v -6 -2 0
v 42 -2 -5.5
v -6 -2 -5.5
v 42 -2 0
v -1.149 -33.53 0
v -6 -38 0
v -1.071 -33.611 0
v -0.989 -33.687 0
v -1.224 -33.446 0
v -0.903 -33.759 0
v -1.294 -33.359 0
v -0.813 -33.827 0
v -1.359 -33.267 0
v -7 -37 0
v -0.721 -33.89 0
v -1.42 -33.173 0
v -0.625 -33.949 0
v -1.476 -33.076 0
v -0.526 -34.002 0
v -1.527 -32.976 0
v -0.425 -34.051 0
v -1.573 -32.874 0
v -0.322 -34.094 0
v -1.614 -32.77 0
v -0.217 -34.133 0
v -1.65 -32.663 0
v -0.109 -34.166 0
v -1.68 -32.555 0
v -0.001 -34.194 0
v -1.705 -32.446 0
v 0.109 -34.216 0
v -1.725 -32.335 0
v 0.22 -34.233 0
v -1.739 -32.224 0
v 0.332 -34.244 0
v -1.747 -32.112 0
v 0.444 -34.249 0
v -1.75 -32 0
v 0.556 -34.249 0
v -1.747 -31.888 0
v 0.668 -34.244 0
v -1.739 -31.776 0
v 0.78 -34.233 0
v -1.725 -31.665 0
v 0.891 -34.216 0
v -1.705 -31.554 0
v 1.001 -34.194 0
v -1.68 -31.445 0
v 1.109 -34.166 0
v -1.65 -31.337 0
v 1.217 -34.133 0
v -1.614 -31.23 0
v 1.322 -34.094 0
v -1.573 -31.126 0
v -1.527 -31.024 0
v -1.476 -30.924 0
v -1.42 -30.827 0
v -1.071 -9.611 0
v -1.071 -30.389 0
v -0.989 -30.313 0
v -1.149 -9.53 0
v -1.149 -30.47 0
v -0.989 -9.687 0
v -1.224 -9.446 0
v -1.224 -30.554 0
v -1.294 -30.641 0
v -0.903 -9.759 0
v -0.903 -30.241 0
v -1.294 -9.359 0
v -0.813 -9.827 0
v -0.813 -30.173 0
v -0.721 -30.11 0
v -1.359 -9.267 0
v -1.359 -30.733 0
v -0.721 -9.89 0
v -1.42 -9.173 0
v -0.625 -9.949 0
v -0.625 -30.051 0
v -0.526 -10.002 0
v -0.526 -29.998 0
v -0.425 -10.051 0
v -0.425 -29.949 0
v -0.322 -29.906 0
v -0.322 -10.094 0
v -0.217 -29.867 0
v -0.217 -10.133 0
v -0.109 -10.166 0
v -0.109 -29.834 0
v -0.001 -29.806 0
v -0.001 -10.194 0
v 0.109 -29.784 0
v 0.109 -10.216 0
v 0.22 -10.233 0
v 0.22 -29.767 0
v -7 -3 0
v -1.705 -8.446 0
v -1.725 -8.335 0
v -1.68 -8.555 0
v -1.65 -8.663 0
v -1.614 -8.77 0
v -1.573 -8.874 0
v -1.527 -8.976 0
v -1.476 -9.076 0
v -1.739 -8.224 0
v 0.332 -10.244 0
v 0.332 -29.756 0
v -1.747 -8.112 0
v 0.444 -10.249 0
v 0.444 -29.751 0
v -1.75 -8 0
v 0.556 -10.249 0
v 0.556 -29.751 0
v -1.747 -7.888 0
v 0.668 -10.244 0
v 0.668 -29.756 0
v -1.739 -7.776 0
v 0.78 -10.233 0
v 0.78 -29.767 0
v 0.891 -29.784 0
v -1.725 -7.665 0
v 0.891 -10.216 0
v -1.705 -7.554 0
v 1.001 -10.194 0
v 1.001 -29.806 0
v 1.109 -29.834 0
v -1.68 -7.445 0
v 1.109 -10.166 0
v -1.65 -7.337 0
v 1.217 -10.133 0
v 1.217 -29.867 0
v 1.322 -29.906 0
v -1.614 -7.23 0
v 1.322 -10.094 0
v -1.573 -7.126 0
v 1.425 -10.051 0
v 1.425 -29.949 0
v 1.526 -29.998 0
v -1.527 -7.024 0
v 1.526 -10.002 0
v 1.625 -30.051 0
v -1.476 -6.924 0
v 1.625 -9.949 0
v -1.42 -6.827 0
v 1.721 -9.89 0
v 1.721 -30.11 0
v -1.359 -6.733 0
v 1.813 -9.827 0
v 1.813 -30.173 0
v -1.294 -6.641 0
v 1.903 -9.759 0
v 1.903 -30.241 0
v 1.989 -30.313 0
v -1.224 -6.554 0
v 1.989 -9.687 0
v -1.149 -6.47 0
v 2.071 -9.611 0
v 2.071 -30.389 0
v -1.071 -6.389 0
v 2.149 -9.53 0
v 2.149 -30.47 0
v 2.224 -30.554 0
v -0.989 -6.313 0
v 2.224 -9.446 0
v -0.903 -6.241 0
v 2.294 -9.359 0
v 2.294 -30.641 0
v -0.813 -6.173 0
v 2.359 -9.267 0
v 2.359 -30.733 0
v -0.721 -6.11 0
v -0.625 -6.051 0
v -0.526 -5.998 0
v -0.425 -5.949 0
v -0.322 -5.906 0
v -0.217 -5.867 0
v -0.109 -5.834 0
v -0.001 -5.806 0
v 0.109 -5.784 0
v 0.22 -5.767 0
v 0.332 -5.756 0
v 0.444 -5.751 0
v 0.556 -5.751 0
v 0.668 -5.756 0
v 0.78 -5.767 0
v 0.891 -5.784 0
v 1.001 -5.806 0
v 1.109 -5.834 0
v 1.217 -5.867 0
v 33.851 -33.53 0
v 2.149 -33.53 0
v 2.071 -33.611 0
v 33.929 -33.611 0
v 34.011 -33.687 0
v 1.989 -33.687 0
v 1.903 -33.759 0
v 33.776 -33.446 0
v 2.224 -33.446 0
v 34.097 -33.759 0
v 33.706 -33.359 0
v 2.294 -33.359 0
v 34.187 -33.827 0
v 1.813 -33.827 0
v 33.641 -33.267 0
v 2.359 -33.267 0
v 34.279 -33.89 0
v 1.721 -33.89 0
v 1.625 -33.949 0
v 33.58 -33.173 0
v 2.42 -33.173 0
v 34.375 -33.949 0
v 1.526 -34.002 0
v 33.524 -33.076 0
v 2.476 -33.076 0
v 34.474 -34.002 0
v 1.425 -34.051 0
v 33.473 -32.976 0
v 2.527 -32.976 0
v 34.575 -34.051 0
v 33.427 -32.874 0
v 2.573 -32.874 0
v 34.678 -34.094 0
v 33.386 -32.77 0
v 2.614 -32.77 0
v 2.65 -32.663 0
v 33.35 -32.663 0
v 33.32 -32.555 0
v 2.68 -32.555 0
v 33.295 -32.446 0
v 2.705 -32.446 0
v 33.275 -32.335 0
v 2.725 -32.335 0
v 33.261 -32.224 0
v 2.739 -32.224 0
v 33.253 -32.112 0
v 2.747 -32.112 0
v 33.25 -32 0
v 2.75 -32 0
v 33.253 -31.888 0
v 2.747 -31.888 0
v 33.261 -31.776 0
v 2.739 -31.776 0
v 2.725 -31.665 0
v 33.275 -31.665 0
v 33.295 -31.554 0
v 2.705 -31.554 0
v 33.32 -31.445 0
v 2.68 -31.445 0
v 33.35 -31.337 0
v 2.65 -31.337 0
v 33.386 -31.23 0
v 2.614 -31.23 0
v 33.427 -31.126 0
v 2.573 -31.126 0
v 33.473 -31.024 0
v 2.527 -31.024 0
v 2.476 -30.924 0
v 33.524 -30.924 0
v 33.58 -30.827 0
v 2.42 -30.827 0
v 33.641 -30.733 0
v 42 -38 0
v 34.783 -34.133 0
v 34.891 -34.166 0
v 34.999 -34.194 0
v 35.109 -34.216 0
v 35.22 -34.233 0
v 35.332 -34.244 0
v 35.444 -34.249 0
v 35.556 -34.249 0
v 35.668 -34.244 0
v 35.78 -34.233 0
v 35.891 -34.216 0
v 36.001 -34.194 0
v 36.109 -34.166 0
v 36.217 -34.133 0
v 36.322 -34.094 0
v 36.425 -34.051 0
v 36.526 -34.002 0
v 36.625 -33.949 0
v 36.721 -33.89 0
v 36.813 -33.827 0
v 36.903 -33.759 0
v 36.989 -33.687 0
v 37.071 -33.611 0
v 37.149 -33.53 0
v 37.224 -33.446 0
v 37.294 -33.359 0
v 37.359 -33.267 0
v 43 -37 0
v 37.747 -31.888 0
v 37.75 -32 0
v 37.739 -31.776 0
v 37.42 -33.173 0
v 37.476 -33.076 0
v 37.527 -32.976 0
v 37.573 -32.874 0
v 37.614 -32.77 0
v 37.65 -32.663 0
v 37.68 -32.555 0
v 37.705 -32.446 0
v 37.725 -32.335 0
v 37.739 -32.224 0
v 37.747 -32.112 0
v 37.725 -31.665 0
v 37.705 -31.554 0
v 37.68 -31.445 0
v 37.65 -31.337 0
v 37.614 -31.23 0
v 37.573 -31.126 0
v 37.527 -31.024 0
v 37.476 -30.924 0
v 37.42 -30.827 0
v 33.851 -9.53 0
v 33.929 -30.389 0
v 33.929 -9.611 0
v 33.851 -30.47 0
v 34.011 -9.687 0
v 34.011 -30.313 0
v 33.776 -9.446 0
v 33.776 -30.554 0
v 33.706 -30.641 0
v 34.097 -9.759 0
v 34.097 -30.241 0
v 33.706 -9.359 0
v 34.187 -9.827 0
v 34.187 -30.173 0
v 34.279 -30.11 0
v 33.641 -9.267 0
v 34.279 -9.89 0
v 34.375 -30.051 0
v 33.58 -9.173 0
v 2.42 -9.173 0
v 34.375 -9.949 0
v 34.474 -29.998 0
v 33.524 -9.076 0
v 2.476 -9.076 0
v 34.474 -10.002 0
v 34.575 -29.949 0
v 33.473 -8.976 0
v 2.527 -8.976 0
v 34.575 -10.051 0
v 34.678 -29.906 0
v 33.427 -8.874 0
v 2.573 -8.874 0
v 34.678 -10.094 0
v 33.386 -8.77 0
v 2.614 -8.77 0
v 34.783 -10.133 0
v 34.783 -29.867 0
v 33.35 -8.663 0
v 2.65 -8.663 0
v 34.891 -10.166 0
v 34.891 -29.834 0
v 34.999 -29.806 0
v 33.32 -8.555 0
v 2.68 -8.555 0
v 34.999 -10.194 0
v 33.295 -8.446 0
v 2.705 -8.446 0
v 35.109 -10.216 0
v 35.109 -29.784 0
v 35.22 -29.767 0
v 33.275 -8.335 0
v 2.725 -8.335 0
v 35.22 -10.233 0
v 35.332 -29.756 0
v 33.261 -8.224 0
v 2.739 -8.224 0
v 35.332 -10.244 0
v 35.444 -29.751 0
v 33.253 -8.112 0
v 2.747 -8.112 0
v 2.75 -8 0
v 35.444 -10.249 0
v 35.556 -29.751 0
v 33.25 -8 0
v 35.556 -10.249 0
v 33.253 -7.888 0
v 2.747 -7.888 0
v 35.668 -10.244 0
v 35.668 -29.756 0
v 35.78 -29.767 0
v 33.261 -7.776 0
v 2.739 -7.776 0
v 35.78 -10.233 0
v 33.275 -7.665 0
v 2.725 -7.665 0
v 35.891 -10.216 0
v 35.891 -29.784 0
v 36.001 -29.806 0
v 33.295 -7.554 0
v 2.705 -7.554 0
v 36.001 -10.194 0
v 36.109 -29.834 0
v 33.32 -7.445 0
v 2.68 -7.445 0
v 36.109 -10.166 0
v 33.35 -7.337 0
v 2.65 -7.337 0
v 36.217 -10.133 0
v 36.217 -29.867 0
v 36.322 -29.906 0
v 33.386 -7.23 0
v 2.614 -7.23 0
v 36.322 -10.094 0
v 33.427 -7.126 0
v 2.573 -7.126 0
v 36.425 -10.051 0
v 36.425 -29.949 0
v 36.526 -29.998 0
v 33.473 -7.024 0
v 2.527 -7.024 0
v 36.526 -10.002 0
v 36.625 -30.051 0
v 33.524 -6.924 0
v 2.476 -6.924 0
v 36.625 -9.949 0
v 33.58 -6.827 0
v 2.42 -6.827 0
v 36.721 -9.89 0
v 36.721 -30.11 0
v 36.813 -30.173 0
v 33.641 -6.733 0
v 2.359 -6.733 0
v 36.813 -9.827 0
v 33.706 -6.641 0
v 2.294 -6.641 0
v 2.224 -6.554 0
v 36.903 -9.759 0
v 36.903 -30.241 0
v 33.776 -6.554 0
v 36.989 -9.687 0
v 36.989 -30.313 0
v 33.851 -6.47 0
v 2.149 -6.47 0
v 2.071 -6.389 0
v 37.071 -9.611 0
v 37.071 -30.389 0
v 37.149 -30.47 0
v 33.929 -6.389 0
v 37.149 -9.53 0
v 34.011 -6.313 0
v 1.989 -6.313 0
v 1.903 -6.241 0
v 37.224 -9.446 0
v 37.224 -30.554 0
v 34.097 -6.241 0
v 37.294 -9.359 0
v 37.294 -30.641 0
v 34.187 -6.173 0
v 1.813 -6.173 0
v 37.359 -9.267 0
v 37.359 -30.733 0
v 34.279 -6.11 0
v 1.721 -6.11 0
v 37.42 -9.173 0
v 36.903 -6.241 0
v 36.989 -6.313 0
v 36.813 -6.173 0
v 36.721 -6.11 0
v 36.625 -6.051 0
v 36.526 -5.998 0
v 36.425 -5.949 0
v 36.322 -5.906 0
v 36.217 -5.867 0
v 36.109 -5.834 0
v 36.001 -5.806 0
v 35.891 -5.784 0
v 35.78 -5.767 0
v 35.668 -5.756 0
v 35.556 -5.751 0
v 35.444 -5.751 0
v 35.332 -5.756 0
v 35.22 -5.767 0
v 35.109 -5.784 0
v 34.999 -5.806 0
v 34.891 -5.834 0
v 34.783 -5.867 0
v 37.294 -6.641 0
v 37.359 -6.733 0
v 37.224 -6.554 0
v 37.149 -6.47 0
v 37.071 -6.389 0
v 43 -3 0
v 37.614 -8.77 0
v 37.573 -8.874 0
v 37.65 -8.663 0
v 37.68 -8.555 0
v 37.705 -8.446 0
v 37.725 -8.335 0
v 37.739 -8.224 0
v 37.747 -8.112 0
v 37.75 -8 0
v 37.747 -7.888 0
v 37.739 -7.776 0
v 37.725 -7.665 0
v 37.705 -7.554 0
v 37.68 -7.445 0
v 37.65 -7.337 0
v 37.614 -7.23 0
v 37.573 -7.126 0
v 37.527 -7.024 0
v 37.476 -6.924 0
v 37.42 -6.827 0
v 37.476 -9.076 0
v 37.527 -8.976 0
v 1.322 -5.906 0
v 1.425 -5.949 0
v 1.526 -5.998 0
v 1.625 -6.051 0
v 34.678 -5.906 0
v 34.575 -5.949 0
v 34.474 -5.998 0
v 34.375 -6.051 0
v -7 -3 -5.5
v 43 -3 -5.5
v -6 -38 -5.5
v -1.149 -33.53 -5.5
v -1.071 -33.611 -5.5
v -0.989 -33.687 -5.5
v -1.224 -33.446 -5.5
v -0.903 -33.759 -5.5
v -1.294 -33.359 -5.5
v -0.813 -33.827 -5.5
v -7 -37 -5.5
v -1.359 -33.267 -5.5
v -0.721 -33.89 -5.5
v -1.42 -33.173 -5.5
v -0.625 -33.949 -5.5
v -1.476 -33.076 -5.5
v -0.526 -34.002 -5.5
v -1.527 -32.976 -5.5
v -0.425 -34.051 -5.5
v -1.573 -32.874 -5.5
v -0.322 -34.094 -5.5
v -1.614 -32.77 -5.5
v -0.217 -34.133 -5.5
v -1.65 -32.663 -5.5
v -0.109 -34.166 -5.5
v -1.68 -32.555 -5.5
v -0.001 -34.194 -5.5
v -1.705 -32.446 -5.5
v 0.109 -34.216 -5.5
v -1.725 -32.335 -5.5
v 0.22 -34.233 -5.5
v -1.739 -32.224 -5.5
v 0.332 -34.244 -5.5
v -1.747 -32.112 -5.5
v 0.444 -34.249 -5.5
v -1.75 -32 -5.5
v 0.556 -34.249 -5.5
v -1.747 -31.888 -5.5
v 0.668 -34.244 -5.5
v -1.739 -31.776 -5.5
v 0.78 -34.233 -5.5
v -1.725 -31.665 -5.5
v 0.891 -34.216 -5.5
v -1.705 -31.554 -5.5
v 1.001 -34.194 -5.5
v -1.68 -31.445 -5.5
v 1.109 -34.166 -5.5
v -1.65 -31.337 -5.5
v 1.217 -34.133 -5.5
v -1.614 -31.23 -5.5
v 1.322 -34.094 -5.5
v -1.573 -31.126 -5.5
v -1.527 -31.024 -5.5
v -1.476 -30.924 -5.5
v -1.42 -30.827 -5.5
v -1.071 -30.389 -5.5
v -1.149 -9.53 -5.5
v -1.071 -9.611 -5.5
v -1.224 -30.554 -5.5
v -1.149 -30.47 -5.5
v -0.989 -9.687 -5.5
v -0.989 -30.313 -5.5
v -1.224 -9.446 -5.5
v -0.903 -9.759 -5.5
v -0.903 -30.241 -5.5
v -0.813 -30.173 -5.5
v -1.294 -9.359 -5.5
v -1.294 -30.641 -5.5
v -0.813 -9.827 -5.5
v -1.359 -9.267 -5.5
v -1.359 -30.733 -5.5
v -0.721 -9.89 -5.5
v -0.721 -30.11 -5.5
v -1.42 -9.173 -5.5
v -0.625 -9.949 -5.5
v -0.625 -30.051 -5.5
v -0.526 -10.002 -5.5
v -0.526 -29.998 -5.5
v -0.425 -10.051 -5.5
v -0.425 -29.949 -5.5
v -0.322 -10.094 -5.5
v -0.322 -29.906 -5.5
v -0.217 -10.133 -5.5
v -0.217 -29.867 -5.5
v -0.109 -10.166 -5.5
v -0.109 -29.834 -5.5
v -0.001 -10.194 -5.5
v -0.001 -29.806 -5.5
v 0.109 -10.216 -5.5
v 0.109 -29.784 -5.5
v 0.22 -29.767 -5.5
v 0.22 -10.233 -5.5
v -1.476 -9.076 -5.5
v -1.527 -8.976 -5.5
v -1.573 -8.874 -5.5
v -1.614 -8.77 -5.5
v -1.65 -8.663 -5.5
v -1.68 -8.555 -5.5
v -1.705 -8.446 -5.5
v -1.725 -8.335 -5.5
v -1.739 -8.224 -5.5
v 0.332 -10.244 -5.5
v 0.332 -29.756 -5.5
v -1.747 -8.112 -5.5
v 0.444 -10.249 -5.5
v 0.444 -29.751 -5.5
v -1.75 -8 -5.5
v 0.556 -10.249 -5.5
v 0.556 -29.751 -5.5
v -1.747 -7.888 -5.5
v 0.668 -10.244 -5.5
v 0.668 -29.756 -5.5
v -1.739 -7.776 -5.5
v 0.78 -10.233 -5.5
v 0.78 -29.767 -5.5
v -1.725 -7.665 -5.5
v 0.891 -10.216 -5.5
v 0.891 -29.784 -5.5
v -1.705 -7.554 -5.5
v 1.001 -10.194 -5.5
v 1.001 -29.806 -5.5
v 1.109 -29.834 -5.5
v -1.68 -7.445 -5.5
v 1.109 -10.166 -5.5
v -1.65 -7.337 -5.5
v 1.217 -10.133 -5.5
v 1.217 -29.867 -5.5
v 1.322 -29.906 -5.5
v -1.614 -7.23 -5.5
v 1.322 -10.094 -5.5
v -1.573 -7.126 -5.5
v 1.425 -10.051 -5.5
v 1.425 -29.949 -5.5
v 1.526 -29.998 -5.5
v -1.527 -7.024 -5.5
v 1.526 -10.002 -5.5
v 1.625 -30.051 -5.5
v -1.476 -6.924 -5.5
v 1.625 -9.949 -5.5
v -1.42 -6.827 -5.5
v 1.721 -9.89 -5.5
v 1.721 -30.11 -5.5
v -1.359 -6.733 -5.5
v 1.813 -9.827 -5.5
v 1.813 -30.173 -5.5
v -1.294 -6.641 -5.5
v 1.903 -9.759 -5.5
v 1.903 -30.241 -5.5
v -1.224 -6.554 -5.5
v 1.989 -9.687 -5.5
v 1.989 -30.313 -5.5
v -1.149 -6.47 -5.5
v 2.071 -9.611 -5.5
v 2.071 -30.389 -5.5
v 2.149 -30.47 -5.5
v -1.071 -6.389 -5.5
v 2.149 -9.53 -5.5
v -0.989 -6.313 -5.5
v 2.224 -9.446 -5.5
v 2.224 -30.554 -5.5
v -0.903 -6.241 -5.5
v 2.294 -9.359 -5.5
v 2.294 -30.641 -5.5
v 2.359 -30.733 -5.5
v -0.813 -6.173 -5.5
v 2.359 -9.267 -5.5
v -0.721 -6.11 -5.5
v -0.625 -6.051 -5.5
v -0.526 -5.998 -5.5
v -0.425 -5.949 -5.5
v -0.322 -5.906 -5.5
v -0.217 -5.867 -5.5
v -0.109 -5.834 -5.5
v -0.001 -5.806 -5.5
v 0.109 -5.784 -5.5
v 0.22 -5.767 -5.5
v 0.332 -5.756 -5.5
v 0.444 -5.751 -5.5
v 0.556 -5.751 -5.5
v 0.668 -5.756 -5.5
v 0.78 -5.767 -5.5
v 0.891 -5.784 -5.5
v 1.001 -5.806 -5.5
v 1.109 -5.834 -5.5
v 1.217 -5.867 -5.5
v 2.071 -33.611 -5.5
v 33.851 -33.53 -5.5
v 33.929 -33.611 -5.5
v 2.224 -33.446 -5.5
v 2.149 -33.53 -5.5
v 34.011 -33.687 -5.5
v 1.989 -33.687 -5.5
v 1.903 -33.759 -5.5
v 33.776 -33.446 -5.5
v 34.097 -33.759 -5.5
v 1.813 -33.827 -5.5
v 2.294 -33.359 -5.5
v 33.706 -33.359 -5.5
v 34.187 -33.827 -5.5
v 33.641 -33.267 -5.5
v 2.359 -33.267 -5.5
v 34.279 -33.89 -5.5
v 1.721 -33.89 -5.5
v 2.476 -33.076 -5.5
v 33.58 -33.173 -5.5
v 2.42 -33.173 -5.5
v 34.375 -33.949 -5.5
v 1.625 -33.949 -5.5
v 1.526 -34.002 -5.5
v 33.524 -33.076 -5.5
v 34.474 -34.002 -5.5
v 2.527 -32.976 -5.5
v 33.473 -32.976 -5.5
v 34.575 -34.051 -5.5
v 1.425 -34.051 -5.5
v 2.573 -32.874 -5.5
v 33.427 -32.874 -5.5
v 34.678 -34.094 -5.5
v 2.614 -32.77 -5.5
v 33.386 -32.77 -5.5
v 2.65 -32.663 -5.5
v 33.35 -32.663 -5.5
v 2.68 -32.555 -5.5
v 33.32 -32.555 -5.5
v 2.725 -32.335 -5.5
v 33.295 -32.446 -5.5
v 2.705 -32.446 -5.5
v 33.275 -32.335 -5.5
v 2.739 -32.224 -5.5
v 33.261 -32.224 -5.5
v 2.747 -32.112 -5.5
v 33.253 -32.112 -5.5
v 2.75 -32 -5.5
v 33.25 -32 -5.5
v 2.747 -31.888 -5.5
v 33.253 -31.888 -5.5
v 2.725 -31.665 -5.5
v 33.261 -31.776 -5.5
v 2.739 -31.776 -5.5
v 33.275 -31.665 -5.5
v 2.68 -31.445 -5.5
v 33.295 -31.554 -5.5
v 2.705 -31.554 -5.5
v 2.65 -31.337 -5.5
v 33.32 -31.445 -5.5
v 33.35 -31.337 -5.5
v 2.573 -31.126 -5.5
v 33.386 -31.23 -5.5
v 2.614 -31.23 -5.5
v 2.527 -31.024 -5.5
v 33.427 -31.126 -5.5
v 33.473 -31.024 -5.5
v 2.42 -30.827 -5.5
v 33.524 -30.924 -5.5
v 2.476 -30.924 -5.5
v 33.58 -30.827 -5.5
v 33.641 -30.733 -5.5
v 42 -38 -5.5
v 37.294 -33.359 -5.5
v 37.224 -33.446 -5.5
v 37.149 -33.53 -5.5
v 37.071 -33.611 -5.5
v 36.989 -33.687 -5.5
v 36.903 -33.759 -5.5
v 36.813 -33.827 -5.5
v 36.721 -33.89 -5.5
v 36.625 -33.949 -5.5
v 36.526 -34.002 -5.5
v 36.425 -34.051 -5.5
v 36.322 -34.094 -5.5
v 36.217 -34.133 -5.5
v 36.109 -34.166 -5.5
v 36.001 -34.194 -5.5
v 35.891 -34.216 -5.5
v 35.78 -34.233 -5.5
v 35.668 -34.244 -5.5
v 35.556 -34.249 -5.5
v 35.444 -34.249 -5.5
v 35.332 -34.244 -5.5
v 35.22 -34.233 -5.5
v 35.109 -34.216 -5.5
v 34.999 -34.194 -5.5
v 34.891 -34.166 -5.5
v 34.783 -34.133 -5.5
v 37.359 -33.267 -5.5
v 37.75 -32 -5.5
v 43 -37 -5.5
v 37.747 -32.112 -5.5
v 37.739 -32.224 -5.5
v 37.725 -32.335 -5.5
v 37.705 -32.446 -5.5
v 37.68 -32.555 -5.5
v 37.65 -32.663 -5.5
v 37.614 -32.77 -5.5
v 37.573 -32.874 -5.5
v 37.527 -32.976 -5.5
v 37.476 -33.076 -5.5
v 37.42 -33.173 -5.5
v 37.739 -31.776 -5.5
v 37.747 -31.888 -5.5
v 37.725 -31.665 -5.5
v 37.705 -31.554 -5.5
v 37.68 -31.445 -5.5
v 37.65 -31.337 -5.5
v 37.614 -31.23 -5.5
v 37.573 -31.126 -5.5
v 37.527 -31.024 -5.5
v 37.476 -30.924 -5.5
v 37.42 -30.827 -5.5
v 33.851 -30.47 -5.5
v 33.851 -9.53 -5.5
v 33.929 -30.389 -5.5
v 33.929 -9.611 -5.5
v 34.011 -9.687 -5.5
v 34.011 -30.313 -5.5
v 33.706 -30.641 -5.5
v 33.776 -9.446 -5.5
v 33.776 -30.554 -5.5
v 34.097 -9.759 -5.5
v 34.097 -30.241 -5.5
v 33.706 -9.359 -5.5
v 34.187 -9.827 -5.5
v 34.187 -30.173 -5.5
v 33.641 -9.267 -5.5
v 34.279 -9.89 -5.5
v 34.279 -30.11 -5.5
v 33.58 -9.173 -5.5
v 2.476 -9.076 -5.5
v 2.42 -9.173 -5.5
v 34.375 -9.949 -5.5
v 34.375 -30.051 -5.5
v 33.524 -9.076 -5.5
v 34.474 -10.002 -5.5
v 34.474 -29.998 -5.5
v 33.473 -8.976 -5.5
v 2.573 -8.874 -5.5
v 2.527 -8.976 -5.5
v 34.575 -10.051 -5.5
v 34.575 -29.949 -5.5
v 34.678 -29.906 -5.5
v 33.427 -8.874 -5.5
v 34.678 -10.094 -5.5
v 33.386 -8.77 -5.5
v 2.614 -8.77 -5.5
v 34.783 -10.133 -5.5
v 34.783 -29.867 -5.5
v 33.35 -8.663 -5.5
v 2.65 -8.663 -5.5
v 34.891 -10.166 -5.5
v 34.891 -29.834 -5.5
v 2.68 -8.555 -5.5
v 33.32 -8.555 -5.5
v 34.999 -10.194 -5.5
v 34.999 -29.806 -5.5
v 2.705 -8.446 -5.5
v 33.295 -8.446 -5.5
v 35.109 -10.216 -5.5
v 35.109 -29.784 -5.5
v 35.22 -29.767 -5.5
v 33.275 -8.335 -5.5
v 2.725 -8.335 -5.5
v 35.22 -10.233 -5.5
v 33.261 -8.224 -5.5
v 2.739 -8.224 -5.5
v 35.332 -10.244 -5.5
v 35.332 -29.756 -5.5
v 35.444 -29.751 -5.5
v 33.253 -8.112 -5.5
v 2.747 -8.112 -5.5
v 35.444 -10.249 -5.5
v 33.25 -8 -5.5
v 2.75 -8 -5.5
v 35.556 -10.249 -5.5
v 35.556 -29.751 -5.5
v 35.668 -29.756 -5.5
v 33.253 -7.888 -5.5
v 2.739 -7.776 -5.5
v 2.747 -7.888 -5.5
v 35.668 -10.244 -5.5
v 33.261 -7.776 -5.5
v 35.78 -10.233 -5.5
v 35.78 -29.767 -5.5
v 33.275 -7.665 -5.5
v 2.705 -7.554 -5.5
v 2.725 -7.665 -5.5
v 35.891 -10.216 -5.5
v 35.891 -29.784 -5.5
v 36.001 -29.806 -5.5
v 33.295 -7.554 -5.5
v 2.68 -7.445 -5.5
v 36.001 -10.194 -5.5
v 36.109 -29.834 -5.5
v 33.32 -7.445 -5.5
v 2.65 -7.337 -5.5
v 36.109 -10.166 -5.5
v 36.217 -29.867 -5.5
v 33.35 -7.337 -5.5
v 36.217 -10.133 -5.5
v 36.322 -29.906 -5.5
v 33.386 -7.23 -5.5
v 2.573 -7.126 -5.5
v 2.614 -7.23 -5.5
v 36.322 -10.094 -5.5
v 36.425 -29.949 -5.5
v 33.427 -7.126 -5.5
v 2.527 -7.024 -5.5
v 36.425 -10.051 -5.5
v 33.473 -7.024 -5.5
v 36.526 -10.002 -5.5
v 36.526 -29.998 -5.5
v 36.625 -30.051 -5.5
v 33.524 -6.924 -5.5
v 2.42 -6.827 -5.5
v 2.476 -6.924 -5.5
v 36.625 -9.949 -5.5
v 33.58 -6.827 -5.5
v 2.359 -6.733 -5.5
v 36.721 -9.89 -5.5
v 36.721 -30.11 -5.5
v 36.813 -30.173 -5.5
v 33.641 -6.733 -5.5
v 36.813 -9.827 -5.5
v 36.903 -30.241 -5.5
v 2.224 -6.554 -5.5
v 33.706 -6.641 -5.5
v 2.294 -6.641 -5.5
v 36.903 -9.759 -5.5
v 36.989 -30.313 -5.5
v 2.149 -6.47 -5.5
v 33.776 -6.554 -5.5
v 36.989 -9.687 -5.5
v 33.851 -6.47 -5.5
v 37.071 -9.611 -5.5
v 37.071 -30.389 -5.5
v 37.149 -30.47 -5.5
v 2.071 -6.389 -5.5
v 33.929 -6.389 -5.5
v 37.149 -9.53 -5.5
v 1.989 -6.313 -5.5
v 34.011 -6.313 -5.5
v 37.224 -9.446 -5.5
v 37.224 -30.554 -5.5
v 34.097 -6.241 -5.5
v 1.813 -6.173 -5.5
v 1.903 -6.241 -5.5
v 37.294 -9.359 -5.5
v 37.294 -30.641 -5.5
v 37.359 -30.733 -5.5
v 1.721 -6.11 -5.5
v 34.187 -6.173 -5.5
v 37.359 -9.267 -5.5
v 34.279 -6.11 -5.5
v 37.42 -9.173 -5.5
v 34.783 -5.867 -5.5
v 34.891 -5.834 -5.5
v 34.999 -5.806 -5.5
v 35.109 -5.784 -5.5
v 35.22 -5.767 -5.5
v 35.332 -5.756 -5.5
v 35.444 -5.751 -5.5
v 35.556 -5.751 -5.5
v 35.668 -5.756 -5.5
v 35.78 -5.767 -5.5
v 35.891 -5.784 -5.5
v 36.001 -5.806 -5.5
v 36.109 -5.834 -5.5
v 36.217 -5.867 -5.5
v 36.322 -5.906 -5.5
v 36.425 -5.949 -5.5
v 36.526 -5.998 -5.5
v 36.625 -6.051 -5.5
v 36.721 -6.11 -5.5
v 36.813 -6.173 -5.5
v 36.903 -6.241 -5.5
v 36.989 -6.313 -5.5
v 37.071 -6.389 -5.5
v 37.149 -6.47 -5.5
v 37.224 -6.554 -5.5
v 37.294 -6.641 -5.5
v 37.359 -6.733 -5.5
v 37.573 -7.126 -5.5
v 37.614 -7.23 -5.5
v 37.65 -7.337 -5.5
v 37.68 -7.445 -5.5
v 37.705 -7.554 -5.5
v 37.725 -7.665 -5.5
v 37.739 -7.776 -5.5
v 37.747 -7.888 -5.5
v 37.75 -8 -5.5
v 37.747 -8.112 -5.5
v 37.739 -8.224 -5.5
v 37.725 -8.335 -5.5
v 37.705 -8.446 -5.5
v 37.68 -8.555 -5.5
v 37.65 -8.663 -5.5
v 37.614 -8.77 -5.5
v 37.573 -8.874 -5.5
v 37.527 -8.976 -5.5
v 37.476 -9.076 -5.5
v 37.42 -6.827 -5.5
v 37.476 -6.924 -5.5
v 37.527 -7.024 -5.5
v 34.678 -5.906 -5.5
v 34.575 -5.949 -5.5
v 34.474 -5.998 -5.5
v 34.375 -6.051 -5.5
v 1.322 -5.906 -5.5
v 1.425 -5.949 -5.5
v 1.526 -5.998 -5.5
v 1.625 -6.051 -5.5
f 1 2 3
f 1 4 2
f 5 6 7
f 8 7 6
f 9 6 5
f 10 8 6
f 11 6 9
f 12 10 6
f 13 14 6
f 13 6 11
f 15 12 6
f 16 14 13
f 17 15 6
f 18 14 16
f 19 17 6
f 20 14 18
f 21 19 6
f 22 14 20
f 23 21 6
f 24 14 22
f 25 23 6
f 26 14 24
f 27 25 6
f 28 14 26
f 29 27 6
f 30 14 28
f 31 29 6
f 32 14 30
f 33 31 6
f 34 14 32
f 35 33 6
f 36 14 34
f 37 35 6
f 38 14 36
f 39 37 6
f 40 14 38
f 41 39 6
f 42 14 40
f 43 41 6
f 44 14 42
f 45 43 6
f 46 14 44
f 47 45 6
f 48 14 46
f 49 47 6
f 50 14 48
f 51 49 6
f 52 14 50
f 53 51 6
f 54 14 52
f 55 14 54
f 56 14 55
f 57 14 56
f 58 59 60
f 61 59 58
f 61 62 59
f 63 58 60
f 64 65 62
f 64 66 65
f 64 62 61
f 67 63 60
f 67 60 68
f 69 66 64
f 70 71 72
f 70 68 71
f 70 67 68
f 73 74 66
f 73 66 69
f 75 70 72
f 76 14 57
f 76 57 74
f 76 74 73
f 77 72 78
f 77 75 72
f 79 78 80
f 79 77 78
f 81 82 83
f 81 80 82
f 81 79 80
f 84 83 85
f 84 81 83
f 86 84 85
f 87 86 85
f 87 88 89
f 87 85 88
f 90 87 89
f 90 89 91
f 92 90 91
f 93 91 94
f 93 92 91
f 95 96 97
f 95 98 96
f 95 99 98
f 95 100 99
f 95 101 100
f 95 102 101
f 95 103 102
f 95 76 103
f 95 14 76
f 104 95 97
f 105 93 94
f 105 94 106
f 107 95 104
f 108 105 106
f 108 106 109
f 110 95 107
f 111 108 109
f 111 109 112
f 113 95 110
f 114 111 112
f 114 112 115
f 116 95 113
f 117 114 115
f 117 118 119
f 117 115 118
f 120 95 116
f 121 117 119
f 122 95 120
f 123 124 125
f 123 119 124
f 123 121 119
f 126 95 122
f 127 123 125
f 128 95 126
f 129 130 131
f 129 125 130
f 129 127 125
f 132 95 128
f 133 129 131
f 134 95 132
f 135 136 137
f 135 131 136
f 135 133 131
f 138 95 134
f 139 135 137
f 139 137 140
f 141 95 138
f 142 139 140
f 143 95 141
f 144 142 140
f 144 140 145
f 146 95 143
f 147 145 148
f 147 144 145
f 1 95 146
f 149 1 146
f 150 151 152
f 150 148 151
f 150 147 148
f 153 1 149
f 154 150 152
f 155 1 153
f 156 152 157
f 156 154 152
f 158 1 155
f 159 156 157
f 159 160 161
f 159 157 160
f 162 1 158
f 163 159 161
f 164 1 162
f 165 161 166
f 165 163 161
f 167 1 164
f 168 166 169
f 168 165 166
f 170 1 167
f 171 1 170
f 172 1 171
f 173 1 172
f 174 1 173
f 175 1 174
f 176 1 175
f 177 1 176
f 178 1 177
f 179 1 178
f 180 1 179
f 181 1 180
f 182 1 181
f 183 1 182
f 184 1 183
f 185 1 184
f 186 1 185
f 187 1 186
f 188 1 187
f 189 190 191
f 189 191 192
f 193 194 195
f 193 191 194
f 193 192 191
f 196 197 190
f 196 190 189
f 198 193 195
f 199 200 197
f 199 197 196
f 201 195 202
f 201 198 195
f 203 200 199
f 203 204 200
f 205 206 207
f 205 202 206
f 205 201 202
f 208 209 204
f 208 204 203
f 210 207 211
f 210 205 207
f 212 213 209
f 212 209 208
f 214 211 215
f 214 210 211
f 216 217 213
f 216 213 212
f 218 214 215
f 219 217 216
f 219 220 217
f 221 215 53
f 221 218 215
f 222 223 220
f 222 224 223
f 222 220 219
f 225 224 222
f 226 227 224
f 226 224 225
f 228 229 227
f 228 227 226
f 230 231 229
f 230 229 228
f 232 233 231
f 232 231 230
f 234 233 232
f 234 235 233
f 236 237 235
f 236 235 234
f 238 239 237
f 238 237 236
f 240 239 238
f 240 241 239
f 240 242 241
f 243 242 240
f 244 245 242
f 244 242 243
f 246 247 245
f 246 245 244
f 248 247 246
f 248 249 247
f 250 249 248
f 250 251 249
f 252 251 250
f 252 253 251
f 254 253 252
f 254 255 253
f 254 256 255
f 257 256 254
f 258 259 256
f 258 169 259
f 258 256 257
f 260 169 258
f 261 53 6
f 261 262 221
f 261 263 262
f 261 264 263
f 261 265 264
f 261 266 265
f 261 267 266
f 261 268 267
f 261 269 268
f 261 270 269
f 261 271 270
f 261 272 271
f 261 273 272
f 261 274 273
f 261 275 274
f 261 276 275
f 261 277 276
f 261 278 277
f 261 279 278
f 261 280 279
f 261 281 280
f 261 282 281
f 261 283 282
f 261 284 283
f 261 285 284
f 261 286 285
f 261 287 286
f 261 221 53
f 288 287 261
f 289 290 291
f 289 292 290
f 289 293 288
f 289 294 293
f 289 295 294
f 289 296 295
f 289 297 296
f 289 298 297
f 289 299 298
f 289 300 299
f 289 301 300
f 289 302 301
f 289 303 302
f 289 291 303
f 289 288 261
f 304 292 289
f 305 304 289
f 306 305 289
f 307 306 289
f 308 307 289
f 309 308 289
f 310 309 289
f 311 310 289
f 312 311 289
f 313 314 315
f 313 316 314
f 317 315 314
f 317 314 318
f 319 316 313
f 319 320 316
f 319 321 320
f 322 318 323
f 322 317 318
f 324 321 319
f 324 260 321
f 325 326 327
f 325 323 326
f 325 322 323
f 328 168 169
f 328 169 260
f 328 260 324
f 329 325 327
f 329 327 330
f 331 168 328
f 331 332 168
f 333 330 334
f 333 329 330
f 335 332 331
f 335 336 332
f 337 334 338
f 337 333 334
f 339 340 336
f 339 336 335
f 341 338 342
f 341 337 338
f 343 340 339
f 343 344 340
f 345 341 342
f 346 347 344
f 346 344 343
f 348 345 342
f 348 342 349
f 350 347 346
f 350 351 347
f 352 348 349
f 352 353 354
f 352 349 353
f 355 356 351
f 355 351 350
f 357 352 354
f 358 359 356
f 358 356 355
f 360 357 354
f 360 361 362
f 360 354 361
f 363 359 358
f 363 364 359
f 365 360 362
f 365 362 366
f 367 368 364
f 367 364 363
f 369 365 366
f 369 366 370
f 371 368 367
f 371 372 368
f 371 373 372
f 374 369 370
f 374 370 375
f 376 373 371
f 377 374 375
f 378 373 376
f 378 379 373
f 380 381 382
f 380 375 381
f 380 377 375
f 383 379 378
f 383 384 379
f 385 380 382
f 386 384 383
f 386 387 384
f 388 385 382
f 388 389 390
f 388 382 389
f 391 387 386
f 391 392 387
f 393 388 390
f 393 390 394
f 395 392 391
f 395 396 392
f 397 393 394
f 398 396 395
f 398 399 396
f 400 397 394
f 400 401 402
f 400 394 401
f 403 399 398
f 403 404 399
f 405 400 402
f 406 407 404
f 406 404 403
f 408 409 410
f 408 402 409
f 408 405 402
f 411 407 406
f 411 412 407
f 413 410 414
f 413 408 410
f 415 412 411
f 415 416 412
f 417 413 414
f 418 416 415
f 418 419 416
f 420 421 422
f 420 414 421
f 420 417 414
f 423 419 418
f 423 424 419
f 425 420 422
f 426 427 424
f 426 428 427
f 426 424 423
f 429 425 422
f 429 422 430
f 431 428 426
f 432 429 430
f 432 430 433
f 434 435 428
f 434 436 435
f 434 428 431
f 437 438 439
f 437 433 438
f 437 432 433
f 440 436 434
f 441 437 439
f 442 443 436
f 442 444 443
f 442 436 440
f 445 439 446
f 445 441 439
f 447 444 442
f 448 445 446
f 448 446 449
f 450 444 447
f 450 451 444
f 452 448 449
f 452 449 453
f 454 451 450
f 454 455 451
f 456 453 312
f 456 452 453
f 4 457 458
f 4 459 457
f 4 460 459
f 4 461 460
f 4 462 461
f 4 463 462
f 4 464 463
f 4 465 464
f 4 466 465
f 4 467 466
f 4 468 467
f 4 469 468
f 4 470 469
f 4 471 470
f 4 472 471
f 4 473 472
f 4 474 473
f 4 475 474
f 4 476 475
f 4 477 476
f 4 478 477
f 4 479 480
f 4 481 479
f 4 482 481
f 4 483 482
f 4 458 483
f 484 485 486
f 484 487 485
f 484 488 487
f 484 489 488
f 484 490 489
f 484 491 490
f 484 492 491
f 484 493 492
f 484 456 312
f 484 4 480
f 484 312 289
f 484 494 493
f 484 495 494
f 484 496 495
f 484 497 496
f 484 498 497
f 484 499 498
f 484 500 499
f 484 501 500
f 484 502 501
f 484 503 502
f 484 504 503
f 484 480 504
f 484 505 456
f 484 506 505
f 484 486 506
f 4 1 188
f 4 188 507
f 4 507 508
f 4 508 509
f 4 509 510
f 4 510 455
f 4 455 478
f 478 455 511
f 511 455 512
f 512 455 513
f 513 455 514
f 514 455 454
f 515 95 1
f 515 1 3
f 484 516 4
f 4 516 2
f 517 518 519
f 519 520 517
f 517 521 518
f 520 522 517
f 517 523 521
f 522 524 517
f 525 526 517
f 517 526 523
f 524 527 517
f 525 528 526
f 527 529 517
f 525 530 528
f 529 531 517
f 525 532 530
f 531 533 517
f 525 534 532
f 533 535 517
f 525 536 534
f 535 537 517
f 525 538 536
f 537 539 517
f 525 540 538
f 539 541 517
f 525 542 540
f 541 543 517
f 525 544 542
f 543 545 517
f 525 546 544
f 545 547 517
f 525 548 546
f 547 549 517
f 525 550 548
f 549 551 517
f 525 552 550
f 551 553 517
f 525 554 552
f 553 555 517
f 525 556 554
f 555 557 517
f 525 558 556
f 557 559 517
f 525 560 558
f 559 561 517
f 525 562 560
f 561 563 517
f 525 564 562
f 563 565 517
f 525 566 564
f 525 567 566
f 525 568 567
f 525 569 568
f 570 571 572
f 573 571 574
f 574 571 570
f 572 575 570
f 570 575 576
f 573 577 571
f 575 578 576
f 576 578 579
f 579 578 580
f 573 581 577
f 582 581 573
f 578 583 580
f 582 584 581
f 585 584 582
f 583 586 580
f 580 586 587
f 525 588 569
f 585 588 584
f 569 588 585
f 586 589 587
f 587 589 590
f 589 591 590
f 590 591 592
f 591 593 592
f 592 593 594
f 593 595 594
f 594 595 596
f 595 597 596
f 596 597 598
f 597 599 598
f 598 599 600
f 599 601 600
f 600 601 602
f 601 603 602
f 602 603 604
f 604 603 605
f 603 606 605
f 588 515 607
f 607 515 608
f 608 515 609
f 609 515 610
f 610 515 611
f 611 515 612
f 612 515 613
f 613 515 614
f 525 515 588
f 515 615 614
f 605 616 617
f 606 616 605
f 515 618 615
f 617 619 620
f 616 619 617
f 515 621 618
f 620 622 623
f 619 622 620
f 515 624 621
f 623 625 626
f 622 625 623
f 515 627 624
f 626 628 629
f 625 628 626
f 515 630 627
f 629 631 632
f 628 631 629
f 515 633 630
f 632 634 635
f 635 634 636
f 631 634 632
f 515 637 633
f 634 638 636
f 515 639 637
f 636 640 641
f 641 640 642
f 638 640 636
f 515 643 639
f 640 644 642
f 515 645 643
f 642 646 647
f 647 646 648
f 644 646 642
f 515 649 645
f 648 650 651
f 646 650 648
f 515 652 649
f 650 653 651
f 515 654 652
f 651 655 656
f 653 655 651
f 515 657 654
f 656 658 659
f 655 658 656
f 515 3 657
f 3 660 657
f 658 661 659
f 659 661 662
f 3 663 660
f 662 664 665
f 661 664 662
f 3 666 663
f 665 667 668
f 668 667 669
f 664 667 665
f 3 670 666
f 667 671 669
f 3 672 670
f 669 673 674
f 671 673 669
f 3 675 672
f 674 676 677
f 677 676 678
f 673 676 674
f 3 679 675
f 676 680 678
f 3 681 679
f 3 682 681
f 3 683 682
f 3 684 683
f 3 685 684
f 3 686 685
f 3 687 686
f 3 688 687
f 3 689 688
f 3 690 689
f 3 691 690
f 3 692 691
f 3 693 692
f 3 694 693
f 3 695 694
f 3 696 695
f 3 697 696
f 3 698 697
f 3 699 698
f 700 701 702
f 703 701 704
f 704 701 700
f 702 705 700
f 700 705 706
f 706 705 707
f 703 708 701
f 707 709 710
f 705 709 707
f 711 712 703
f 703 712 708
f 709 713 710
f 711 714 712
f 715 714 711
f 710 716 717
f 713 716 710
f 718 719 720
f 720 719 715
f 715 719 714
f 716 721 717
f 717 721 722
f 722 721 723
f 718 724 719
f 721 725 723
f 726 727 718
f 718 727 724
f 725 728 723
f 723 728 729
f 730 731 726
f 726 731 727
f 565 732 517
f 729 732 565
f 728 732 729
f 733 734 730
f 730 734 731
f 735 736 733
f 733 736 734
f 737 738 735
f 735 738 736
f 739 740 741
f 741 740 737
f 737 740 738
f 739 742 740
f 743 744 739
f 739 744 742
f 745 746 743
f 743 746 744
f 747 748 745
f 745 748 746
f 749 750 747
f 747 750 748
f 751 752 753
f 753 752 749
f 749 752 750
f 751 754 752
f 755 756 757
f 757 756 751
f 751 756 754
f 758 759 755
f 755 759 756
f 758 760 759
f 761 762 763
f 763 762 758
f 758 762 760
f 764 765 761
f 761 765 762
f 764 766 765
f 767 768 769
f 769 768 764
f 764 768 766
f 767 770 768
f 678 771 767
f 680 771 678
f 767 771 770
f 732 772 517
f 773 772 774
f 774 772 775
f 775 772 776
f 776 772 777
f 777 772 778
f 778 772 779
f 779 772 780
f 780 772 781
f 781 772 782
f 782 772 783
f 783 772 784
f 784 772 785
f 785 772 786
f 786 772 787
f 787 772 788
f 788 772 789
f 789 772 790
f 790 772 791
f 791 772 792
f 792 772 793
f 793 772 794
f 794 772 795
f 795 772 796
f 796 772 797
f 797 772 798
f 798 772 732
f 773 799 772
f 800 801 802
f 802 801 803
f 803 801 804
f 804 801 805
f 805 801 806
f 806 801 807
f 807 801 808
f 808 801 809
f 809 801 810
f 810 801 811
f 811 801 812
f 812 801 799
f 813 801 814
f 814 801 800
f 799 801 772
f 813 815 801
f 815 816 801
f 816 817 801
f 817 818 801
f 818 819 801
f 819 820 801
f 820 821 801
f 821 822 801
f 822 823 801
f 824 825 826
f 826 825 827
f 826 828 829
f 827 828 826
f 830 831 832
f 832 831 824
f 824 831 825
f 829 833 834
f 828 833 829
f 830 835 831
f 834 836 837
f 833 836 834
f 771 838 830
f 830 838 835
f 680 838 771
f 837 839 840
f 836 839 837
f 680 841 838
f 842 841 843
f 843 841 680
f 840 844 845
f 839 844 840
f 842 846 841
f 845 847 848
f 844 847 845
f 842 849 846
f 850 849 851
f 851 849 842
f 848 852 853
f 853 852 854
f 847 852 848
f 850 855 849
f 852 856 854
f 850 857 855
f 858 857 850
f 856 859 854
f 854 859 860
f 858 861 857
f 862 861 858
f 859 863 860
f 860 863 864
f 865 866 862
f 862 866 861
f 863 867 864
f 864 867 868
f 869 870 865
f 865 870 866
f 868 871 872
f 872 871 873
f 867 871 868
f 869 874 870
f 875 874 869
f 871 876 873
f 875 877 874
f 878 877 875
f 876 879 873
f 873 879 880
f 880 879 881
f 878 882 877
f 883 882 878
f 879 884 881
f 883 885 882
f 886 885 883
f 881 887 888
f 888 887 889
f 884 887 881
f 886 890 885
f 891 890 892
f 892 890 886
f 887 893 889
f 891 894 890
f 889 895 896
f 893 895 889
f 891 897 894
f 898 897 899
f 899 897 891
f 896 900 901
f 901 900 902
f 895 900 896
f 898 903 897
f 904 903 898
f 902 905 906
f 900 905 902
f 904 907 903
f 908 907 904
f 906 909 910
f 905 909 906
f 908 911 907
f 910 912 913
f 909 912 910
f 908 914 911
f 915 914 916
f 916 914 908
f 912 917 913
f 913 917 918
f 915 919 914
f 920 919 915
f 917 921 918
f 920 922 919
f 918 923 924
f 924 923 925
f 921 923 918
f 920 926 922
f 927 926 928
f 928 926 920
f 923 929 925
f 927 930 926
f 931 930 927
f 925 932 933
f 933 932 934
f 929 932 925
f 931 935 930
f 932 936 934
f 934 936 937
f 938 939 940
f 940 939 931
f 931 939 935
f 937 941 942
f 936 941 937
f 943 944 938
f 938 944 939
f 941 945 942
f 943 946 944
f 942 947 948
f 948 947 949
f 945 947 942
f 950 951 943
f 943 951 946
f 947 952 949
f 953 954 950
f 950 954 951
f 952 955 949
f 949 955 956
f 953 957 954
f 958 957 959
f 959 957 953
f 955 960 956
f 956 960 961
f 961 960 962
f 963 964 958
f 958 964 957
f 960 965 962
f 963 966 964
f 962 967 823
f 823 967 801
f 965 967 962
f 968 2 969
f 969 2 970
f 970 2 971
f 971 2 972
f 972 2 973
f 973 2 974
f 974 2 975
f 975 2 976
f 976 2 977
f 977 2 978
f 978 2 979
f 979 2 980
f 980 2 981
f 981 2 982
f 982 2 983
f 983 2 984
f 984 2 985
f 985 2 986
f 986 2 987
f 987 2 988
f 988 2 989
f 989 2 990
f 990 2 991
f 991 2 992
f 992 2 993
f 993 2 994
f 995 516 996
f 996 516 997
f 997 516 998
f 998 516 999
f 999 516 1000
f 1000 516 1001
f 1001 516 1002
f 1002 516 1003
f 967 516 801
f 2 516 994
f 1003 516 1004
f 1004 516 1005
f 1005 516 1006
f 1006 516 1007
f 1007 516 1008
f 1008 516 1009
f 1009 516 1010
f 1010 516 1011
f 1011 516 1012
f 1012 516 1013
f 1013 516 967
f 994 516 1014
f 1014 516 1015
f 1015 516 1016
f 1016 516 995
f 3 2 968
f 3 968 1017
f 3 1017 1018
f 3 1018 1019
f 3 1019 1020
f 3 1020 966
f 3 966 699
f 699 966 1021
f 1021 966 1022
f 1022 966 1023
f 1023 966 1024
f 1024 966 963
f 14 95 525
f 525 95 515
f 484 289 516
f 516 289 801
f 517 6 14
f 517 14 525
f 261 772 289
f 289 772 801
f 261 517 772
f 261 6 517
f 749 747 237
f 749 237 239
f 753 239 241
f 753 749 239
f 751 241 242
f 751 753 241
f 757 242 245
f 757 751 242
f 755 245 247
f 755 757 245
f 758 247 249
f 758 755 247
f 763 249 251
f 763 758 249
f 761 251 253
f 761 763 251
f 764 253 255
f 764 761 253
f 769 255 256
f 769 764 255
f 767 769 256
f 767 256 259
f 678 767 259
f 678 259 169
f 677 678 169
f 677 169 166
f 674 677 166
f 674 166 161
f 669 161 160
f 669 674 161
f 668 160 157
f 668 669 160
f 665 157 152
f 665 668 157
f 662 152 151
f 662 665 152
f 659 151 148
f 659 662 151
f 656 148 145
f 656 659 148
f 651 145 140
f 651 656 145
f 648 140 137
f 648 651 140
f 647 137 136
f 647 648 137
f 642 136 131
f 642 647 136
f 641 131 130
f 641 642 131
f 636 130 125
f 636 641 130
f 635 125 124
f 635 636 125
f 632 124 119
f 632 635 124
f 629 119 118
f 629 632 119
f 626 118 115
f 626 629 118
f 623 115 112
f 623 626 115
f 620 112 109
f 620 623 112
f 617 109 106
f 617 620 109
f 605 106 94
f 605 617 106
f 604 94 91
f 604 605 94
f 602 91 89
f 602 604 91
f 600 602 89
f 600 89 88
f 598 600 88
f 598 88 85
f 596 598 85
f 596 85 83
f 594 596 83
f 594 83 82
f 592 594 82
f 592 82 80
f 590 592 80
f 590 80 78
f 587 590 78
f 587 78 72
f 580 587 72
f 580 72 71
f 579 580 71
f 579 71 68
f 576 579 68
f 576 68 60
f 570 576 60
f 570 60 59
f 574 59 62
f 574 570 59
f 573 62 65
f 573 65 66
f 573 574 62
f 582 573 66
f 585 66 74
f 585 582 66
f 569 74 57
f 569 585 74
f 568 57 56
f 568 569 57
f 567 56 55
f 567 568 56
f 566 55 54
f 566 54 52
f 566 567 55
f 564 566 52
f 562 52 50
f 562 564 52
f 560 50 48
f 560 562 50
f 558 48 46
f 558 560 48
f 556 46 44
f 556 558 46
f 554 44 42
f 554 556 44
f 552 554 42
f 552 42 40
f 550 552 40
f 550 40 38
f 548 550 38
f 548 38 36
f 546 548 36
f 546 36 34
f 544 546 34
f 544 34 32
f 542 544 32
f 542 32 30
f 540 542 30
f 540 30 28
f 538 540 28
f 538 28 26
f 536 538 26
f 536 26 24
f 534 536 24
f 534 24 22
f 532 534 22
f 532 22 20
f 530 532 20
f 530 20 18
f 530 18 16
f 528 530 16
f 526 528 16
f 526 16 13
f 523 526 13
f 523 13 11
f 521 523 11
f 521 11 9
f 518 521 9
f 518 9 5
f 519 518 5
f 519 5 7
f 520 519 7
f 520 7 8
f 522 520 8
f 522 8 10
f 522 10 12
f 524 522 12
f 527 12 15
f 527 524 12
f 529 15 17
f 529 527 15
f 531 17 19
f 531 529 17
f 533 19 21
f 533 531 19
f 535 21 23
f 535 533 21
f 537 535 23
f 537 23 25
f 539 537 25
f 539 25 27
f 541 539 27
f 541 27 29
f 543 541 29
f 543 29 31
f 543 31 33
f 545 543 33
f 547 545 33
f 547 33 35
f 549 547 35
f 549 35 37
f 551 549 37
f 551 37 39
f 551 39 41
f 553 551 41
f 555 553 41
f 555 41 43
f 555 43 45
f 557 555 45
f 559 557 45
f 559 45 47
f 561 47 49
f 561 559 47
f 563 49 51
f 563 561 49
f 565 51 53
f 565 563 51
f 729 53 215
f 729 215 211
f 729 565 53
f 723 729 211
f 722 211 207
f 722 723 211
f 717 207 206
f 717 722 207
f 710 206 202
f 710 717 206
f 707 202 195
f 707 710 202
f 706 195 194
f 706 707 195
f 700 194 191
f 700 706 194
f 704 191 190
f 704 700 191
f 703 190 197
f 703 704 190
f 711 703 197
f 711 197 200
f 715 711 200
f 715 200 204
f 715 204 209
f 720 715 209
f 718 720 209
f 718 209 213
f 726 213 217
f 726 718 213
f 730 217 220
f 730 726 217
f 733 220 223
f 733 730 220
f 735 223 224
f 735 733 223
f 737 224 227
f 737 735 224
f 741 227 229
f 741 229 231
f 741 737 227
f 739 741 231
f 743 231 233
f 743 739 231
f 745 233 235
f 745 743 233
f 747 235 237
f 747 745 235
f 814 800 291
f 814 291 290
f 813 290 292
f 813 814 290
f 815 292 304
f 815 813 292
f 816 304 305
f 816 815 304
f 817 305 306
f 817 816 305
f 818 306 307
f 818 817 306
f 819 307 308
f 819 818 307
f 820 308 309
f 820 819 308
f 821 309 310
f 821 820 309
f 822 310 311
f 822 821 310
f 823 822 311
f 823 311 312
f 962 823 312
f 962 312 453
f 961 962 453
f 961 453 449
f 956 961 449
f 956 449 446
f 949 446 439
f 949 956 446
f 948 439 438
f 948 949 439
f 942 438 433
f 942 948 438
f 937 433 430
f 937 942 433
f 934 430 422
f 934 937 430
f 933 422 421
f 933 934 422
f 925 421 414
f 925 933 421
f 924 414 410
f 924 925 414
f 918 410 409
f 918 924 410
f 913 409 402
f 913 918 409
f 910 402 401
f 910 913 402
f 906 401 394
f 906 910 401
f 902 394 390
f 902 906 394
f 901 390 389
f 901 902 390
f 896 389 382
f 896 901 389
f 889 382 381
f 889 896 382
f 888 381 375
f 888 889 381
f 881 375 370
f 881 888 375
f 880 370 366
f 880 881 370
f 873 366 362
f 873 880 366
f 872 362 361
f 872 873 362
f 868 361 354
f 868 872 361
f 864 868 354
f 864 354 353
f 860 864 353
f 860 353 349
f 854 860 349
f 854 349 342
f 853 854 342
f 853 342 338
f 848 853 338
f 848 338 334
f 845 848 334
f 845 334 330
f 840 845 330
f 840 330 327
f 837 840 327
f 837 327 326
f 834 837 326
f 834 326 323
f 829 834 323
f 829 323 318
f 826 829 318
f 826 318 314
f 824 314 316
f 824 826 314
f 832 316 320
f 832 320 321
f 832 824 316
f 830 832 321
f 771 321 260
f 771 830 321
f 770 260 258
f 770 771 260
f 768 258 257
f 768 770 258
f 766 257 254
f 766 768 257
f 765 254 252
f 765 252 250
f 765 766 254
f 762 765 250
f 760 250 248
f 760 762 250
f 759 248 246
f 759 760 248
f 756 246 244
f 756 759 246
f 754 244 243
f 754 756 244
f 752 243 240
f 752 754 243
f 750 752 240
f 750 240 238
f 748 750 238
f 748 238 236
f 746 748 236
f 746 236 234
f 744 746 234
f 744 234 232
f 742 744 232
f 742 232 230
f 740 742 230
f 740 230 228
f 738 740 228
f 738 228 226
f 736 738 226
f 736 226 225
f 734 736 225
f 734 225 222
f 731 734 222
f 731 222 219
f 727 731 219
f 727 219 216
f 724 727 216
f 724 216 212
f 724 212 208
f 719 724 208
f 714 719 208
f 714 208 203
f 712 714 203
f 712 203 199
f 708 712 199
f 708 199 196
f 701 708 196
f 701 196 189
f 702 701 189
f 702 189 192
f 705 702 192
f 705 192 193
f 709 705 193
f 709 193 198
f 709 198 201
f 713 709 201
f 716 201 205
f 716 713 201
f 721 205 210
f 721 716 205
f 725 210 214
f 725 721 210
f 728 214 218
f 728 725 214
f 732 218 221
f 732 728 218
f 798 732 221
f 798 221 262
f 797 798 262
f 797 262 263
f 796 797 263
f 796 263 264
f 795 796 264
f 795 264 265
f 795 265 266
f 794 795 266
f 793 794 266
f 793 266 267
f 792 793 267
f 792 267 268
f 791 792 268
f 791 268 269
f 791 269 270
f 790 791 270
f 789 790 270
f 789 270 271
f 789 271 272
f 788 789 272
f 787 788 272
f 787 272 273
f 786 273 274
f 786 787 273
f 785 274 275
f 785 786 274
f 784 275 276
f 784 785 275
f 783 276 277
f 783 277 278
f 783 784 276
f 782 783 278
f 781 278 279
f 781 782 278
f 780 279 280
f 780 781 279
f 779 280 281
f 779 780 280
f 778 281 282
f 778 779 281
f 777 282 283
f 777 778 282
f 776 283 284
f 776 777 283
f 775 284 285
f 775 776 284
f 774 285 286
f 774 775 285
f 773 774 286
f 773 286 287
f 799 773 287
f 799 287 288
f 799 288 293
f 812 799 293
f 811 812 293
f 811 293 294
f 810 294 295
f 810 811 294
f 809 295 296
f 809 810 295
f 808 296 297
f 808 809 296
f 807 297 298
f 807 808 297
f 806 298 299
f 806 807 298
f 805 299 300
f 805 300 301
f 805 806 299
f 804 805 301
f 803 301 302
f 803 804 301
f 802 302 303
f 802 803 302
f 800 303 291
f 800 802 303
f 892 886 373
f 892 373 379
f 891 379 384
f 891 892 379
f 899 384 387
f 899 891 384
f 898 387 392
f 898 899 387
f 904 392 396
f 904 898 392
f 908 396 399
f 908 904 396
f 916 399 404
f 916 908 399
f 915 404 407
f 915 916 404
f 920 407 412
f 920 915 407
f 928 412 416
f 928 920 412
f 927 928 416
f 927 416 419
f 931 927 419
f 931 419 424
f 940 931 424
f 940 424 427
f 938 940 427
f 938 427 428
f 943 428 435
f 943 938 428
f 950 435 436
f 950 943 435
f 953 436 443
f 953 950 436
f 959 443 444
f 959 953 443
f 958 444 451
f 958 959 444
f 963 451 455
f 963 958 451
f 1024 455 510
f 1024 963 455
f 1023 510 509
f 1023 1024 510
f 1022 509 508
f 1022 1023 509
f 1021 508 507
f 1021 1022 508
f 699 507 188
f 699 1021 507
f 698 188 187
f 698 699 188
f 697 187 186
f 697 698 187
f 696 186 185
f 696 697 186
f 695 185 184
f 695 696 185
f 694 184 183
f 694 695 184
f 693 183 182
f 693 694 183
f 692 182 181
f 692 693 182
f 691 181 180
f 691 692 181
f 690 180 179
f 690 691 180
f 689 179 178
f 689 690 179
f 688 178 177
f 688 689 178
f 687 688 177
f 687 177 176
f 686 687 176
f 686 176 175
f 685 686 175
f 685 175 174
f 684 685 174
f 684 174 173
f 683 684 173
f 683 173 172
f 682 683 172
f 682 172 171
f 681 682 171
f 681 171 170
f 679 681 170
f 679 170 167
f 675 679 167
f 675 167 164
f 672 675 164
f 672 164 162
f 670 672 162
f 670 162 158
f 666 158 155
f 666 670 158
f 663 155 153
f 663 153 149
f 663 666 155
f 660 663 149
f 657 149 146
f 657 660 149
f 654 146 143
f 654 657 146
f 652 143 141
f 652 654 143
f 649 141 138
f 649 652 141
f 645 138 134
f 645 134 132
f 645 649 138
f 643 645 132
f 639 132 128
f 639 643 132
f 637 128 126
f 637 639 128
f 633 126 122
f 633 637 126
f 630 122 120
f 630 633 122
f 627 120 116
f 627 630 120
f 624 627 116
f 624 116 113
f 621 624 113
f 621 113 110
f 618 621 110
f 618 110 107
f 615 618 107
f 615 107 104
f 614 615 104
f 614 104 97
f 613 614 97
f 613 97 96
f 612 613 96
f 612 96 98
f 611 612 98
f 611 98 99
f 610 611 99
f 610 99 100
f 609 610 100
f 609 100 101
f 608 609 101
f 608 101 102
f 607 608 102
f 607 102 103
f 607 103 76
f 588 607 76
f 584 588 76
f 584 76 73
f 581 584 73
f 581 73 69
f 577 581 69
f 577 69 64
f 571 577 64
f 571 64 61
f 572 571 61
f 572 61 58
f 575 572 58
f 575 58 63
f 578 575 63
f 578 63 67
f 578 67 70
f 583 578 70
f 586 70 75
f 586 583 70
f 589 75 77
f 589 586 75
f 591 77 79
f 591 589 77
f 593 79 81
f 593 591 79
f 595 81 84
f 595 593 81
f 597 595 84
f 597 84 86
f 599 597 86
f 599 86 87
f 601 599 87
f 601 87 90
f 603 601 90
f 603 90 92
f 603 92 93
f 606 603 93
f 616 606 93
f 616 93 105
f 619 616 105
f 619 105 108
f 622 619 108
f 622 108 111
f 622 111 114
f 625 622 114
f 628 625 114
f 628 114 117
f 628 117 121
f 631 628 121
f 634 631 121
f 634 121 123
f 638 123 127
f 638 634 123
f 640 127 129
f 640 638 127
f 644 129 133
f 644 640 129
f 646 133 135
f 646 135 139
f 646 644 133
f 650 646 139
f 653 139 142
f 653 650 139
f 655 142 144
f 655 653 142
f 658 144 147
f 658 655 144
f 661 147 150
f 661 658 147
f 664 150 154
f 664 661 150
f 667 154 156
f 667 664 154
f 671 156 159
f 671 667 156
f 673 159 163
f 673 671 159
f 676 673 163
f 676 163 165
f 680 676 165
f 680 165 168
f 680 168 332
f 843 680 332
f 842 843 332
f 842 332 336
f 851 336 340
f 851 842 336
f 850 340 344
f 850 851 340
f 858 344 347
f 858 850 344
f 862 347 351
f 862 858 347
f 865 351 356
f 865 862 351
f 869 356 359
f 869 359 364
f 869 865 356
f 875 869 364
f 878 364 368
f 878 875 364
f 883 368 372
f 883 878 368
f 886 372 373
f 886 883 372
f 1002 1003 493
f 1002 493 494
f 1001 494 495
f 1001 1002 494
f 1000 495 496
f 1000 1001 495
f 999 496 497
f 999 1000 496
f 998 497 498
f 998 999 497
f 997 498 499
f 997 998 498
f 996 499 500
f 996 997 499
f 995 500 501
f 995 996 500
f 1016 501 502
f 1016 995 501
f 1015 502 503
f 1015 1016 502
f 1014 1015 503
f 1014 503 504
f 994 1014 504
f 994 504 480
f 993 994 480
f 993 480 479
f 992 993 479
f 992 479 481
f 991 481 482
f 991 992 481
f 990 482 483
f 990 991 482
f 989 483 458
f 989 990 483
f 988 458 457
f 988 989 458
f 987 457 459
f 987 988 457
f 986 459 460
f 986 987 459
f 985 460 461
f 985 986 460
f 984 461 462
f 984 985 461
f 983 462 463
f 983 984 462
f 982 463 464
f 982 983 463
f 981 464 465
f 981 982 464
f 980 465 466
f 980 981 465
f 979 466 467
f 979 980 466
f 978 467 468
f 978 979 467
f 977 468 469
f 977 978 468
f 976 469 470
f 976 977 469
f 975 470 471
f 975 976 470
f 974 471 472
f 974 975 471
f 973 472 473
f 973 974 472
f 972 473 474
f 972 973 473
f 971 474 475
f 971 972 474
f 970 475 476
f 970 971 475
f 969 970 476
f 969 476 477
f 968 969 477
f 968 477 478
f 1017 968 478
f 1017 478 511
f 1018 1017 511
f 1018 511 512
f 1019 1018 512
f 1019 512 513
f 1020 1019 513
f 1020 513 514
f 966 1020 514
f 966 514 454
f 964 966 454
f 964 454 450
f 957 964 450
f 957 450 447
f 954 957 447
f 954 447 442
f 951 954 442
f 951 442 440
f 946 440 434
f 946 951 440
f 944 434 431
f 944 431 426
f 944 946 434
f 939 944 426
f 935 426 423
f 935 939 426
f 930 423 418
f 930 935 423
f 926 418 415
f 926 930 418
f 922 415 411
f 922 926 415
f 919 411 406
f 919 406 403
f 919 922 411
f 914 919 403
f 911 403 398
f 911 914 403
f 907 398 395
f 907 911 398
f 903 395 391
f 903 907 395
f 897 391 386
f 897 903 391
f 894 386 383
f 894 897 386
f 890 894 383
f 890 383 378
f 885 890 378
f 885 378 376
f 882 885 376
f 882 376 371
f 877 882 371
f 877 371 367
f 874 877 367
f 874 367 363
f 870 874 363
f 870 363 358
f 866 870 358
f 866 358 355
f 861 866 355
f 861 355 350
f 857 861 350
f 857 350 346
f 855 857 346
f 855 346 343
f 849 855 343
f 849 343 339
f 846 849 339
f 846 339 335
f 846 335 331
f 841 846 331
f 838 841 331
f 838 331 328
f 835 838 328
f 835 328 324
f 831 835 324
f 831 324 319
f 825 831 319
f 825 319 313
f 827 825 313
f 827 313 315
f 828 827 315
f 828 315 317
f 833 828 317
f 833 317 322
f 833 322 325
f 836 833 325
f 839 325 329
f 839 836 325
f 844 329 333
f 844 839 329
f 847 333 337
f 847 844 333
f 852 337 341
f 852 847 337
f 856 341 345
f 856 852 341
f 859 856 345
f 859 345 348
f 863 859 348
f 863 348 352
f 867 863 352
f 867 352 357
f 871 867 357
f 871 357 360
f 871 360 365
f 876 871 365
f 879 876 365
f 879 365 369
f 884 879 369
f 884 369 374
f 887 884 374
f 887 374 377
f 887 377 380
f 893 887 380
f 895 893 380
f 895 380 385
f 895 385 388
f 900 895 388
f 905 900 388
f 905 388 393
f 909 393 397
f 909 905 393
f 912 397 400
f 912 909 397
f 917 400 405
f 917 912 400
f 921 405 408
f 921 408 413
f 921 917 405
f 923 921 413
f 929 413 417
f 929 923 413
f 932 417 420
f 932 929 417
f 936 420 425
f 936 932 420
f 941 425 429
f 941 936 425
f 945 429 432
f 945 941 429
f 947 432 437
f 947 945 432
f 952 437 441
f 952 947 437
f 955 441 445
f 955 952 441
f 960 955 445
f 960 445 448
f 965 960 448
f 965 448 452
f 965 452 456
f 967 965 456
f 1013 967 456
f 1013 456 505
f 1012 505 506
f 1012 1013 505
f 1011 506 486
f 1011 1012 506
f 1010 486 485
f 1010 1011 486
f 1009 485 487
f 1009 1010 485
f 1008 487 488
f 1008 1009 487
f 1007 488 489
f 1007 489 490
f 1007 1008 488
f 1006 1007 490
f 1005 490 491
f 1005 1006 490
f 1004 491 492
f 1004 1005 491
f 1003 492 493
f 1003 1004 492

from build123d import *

# Parameters (mm, degrees)
SKETCH_W              = 50
SKETCH_H              = 36
PAD_DEPTH             = 5.5
SKETCH001_R           = 2.25
HOLE_DEPTH            = 25
CHAMFER_SIZE          = 1
CLONE_PLACEMENT_ANGLE = 180


with BuildPart() as part:
    # Sketch → Pad (new body)
    with BuildSketch(Plane.XY):
        Rectangle(SKETCH_W, SKETCH_H)
    extrude(amount=-PAD_DEPTH)

    # Sketch001 → Hole (cut)
    with BuildSketch(Plane.XY):
        with Locations((-17.5, 12)):
            Circle(SKETCH001_R)
        with Locations((17.5, 12)):
            Circle(SKETCH001_R)
        with Locations((17.5, -12)):
            Circle(SKETCH001_R)
        with Locations((-17.5, -12)):
            Circle(SKETCH001_R)
    extrude(amount=-HOLE_DEPTH, mode=Mode.SUBTRACT)

    # Chamfer
    chamfer_edges = [part.edges().sort_by_distance(p)[0] for p in [
        (-25, -18, -2.75),
        (25, -18, -2.75),
        (-25, 18, -2.75),
        (25, 18, -2.75),
    ]]
    chamfer(chamfer_edges, length=CHAMFER_SIZE)


with BuildPart() as part_1:
    # Clone placement: moved
    add(part.part.moved(Location((18, -20, 0))).rotate(Axis((18, -20, 0), (0, 0, 1)), CLONE_PLACEMENT_ANGLE))


solid = part_1.part
